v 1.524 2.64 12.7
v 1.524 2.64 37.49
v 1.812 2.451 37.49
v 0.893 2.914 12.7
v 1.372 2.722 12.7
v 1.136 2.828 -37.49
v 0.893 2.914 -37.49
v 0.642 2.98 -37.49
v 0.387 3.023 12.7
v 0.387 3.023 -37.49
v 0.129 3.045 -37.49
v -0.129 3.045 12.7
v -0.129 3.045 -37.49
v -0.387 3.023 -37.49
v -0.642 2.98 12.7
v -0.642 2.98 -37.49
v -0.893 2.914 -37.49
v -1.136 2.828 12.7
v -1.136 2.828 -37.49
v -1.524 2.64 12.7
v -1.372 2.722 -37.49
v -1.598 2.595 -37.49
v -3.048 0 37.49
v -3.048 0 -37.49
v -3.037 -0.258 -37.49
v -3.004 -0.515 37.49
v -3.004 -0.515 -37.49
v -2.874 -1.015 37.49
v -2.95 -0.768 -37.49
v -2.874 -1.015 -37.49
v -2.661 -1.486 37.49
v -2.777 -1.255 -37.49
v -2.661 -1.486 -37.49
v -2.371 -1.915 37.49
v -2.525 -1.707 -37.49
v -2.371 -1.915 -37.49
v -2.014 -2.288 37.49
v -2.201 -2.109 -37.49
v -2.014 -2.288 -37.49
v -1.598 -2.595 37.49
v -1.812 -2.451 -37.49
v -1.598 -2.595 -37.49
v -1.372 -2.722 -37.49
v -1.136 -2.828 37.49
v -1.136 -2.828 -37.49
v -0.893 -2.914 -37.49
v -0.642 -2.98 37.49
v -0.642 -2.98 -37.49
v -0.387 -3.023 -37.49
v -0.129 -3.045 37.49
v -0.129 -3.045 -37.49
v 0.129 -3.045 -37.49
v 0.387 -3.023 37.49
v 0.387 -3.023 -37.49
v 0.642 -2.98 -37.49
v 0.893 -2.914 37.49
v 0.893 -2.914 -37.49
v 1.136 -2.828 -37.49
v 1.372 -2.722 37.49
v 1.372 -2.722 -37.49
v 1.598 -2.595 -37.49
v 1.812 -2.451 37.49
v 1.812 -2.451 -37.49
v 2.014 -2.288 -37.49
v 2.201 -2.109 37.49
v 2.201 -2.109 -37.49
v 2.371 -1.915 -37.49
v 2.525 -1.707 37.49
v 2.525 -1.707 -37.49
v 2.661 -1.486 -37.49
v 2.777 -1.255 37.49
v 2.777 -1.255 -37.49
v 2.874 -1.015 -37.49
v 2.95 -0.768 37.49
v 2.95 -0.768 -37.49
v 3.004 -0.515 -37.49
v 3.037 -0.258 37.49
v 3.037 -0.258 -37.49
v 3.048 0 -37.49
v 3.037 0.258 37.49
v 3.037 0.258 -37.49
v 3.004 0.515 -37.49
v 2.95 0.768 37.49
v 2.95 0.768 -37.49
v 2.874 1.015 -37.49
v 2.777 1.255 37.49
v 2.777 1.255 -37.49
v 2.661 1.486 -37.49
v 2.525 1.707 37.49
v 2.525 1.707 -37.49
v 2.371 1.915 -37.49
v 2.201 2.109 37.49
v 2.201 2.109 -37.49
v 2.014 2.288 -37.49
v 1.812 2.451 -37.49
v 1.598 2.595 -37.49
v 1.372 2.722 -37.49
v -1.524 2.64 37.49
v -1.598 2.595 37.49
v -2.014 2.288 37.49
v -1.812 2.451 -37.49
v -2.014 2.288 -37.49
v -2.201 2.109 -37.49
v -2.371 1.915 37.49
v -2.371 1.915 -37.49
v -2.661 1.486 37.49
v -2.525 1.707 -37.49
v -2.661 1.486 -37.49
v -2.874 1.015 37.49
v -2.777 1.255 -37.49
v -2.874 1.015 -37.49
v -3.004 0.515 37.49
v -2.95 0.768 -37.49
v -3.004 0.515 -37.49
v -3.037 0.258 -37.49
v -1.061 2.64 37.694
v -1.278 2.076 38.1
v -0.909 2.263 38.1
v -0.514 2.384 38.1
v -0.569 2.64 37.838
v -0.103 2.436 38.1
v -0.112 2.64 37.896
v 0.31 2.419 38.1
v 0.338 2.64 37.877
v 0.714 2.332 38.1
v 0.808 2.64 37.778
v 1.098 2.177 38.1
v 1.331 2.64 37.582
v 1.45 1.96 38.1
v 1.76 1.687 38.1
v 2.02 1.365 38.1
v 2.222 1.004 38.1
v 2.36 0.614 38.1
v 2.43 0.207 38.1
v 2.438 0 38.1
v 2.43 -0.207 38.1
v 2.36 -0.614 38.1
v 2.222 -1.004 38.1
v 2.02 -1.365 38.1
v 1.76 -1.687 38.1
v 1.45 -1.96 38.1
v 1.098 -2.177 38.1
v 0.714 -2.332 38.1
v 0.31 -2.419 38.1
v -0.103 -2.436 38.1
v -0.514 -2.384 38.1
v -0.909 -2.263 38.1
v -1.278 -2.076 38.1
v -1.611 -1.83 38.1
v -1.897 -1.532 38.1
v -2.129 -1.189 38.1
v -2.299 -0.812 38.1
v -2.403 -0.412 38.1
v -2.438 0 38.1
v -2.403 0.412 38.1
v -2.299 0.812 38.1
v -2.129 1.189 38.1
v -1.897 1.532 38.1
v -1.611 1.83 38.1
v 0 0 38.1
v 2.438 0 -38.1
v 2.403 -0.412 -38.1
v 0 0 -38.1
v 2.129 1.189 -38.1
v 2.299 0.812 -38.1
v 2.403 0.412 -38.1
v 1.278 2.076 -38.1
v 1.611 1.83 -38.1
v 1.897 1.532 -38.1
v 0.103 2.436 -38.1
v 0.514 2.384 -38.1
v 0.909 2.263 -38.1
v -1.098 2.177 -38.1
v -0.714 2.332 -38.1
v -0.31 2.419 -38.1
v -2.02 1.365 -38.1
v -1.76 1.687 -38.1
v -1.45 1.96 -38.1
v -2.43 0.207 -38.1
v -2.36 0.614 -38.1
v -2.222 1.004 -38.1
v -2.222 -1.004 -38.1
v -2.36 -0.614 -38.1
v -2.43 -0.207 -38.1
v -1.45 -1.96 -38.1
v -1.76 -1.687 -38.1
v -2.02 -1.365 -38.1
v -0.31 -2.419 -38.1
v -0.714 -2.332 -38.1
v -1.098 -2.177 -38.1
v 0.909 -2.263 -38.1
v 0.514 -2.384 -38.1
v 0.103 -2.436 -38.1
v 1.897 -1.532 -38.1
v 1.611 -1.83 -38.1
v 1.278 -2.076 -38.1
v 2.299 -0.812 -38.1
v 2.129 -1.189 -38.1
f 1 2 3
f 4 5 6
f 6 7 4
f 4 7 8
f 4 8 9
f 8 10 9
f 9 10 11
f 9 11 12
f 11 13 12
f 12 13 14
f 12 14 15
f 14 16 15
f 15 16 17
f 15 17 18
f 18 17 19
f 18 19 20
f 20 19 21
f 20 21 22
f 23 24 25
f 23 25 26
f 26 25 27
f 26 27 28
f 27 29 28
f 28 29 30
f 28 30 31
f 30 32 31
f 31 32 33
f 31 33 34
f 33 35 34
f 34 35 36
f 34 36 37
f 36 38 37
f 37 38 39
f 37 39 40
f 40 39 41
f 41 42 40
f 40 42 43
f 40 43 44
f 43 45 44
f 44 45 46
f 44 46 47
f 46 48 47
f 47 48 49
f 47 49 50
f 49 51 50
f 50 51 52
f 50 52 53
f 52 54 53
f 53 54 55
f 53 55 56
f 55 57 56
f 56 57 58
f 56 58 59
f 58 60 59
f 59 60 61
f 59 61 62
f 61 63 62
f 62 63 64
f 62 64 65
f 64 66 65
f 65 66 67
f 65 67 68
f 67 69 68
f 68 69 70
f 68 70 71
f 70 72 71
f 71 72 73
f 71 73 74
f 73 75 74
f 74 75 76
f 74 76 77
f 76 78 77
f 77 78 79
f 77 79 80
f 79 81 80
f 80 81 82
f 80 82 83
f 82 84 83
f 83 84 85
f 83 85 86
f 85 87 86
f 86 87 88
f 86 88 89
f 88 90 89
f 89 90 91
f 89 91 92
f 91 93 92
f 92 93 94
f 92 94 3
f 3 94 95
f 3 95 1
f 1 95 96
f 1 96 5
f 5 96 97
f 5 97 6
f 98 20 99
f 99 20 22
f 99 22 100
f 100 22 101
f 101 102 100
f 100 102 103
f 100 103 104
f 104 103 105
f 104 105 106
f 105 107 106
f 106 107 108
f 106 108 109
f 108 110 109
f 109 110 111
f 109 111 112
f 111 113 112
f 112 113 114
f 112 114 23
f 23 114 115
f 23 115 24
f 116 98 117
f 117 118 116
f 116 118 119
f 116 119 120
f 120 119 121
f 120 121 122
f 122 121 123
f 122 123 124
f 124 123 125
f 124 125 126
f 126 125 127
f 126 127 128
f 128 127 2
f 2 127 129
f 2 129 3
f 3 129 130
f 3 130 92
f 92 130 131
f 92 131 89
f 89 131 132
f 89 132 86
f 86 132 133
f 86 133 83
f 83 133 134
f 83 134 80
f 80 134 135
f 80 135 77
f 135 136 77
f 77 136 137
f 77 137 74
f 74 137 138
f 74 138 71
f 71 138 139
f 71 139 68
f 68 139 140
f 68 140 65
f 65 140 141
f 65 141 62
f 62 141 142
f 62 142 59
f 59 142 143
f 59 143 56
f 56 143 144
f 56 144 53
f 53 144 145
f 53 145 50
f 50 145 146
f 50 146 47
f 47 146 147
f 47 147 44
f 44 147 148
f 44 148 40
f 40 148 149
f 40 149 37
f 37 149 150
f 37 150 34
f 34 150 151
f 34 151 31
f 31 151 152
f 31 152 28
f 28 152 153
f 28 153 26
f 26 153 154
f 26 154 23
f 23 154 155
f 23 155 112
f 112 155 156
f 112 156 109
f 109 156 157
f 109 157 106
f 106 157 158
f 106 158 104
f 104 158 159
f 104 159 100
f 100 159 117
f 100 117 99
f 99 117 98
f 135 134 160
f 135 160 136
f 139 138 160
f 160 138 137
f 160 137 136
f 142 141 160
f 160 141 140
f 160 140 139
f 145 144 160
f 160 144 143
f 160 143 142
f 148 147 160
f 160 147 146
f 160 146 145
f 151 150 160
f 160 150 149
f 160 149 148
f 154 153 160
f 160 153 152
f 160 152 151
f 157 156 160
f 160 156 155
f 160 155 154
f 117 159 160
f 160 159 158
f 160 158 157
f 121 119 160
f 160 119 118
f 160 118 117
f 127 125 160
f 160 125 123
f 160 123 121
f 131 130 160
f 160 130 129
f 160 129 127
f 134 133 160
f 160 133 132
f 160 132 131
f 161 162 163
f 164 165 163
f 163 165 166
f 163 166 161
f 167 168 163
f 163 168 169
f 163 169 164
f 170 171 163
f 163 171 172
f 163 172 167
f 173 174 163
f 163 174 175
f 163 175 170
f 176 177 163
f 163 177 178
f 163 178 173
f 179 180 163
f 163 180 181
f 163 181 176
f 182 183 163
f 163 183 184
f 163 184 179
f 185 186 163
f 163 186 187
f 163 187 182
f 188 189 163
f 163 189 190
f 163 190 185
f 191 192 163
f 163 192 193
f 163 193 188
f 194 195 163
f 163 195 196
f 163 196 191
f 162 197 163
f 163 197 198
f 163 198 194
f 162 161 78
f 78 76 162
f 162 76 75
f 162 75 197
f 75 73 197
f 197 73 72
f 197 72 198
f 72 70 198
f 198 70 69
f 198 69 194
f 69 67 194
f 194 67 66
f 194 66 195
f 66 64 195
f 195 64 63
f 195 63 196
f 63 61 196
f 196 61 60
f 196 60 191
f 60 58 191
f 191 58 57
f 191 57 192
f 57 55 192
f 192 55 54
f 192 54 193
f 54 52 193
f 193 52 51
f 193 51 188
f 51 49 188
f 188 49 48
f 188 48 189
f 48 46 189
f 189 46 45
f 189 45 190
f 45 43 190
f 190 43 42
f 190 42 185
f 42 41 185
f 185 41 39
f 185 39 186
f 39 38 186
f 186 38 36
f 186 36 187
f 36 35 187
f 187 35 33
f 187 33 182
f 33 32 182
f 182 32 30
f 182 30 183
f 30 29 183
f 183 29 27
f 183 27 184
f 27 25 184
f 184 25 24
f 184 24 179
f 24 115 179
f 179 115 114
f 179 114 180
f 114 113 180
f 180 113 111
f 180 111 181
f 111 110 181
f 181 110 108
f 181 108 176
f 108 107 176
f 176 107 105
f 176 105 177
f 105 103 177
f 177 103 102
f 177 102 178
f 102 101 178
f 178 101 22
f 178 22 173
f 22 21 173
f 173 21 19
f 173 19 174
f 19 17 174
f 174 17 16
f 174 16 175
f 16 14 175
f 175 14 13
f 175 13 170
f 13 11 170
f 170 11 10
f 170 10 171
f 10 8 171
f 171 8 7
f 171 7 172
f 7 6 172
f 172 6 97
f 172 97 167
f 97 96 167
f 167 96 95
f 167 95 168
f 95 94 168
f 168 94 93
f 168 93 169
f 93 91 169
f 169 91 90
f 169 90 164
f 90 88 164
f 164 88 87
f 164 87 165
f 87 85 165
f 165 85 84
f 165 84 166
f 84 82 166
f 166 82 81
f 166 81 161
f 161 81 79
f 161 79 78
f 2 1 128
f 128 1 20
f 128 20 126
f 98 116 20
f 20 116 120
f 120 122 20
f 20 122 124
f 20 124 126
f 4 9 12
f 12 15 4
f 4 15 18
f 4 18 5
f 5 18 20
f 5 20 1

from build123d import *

# Parameters (mm, degrees)
SKETCH1_R      = 3.048
EXTRUDE1_DEPTH = 38.1
CHAMFER1_SIZE  = 0.6096
EXTRUDE7_DEPTH = 26.4


with BuildPart() as part:
    # Sketch1 → Extrude1 (new body, symmetric)
    with BuildSketch(Plane.XY):
        Circle(SKETCH1_R)
    extrude(amount=EXTRUDE1_DEPTH, both=True)

    # Chamfer1
    chamfer1_edges = [part.edges().sort_by_distance(p)[0] for p in [
        (-3.048, 0, -38.1),
        (-3.048, 0, 38.1),
    ]]
    chamfer(chamfer1_edges, length=CHAMFER1_SIZE)

    # Sketch13 → Extrude7 (cut, through all)
    with BuildSketch(Plane.XY.offset(12.7)):
        with BuildLine():
            Line((-1.524, 2.639645431), (1.524, 2.639645431))
            ThreePointArc((1.524, 2.639645431), (0, 3.048), (-1.524, 2.639645431))
        make_face()
    extrude(amount=EXTRUDE7_DEPTH, mode=Mode.SUBTRACT)


solid = part.part
